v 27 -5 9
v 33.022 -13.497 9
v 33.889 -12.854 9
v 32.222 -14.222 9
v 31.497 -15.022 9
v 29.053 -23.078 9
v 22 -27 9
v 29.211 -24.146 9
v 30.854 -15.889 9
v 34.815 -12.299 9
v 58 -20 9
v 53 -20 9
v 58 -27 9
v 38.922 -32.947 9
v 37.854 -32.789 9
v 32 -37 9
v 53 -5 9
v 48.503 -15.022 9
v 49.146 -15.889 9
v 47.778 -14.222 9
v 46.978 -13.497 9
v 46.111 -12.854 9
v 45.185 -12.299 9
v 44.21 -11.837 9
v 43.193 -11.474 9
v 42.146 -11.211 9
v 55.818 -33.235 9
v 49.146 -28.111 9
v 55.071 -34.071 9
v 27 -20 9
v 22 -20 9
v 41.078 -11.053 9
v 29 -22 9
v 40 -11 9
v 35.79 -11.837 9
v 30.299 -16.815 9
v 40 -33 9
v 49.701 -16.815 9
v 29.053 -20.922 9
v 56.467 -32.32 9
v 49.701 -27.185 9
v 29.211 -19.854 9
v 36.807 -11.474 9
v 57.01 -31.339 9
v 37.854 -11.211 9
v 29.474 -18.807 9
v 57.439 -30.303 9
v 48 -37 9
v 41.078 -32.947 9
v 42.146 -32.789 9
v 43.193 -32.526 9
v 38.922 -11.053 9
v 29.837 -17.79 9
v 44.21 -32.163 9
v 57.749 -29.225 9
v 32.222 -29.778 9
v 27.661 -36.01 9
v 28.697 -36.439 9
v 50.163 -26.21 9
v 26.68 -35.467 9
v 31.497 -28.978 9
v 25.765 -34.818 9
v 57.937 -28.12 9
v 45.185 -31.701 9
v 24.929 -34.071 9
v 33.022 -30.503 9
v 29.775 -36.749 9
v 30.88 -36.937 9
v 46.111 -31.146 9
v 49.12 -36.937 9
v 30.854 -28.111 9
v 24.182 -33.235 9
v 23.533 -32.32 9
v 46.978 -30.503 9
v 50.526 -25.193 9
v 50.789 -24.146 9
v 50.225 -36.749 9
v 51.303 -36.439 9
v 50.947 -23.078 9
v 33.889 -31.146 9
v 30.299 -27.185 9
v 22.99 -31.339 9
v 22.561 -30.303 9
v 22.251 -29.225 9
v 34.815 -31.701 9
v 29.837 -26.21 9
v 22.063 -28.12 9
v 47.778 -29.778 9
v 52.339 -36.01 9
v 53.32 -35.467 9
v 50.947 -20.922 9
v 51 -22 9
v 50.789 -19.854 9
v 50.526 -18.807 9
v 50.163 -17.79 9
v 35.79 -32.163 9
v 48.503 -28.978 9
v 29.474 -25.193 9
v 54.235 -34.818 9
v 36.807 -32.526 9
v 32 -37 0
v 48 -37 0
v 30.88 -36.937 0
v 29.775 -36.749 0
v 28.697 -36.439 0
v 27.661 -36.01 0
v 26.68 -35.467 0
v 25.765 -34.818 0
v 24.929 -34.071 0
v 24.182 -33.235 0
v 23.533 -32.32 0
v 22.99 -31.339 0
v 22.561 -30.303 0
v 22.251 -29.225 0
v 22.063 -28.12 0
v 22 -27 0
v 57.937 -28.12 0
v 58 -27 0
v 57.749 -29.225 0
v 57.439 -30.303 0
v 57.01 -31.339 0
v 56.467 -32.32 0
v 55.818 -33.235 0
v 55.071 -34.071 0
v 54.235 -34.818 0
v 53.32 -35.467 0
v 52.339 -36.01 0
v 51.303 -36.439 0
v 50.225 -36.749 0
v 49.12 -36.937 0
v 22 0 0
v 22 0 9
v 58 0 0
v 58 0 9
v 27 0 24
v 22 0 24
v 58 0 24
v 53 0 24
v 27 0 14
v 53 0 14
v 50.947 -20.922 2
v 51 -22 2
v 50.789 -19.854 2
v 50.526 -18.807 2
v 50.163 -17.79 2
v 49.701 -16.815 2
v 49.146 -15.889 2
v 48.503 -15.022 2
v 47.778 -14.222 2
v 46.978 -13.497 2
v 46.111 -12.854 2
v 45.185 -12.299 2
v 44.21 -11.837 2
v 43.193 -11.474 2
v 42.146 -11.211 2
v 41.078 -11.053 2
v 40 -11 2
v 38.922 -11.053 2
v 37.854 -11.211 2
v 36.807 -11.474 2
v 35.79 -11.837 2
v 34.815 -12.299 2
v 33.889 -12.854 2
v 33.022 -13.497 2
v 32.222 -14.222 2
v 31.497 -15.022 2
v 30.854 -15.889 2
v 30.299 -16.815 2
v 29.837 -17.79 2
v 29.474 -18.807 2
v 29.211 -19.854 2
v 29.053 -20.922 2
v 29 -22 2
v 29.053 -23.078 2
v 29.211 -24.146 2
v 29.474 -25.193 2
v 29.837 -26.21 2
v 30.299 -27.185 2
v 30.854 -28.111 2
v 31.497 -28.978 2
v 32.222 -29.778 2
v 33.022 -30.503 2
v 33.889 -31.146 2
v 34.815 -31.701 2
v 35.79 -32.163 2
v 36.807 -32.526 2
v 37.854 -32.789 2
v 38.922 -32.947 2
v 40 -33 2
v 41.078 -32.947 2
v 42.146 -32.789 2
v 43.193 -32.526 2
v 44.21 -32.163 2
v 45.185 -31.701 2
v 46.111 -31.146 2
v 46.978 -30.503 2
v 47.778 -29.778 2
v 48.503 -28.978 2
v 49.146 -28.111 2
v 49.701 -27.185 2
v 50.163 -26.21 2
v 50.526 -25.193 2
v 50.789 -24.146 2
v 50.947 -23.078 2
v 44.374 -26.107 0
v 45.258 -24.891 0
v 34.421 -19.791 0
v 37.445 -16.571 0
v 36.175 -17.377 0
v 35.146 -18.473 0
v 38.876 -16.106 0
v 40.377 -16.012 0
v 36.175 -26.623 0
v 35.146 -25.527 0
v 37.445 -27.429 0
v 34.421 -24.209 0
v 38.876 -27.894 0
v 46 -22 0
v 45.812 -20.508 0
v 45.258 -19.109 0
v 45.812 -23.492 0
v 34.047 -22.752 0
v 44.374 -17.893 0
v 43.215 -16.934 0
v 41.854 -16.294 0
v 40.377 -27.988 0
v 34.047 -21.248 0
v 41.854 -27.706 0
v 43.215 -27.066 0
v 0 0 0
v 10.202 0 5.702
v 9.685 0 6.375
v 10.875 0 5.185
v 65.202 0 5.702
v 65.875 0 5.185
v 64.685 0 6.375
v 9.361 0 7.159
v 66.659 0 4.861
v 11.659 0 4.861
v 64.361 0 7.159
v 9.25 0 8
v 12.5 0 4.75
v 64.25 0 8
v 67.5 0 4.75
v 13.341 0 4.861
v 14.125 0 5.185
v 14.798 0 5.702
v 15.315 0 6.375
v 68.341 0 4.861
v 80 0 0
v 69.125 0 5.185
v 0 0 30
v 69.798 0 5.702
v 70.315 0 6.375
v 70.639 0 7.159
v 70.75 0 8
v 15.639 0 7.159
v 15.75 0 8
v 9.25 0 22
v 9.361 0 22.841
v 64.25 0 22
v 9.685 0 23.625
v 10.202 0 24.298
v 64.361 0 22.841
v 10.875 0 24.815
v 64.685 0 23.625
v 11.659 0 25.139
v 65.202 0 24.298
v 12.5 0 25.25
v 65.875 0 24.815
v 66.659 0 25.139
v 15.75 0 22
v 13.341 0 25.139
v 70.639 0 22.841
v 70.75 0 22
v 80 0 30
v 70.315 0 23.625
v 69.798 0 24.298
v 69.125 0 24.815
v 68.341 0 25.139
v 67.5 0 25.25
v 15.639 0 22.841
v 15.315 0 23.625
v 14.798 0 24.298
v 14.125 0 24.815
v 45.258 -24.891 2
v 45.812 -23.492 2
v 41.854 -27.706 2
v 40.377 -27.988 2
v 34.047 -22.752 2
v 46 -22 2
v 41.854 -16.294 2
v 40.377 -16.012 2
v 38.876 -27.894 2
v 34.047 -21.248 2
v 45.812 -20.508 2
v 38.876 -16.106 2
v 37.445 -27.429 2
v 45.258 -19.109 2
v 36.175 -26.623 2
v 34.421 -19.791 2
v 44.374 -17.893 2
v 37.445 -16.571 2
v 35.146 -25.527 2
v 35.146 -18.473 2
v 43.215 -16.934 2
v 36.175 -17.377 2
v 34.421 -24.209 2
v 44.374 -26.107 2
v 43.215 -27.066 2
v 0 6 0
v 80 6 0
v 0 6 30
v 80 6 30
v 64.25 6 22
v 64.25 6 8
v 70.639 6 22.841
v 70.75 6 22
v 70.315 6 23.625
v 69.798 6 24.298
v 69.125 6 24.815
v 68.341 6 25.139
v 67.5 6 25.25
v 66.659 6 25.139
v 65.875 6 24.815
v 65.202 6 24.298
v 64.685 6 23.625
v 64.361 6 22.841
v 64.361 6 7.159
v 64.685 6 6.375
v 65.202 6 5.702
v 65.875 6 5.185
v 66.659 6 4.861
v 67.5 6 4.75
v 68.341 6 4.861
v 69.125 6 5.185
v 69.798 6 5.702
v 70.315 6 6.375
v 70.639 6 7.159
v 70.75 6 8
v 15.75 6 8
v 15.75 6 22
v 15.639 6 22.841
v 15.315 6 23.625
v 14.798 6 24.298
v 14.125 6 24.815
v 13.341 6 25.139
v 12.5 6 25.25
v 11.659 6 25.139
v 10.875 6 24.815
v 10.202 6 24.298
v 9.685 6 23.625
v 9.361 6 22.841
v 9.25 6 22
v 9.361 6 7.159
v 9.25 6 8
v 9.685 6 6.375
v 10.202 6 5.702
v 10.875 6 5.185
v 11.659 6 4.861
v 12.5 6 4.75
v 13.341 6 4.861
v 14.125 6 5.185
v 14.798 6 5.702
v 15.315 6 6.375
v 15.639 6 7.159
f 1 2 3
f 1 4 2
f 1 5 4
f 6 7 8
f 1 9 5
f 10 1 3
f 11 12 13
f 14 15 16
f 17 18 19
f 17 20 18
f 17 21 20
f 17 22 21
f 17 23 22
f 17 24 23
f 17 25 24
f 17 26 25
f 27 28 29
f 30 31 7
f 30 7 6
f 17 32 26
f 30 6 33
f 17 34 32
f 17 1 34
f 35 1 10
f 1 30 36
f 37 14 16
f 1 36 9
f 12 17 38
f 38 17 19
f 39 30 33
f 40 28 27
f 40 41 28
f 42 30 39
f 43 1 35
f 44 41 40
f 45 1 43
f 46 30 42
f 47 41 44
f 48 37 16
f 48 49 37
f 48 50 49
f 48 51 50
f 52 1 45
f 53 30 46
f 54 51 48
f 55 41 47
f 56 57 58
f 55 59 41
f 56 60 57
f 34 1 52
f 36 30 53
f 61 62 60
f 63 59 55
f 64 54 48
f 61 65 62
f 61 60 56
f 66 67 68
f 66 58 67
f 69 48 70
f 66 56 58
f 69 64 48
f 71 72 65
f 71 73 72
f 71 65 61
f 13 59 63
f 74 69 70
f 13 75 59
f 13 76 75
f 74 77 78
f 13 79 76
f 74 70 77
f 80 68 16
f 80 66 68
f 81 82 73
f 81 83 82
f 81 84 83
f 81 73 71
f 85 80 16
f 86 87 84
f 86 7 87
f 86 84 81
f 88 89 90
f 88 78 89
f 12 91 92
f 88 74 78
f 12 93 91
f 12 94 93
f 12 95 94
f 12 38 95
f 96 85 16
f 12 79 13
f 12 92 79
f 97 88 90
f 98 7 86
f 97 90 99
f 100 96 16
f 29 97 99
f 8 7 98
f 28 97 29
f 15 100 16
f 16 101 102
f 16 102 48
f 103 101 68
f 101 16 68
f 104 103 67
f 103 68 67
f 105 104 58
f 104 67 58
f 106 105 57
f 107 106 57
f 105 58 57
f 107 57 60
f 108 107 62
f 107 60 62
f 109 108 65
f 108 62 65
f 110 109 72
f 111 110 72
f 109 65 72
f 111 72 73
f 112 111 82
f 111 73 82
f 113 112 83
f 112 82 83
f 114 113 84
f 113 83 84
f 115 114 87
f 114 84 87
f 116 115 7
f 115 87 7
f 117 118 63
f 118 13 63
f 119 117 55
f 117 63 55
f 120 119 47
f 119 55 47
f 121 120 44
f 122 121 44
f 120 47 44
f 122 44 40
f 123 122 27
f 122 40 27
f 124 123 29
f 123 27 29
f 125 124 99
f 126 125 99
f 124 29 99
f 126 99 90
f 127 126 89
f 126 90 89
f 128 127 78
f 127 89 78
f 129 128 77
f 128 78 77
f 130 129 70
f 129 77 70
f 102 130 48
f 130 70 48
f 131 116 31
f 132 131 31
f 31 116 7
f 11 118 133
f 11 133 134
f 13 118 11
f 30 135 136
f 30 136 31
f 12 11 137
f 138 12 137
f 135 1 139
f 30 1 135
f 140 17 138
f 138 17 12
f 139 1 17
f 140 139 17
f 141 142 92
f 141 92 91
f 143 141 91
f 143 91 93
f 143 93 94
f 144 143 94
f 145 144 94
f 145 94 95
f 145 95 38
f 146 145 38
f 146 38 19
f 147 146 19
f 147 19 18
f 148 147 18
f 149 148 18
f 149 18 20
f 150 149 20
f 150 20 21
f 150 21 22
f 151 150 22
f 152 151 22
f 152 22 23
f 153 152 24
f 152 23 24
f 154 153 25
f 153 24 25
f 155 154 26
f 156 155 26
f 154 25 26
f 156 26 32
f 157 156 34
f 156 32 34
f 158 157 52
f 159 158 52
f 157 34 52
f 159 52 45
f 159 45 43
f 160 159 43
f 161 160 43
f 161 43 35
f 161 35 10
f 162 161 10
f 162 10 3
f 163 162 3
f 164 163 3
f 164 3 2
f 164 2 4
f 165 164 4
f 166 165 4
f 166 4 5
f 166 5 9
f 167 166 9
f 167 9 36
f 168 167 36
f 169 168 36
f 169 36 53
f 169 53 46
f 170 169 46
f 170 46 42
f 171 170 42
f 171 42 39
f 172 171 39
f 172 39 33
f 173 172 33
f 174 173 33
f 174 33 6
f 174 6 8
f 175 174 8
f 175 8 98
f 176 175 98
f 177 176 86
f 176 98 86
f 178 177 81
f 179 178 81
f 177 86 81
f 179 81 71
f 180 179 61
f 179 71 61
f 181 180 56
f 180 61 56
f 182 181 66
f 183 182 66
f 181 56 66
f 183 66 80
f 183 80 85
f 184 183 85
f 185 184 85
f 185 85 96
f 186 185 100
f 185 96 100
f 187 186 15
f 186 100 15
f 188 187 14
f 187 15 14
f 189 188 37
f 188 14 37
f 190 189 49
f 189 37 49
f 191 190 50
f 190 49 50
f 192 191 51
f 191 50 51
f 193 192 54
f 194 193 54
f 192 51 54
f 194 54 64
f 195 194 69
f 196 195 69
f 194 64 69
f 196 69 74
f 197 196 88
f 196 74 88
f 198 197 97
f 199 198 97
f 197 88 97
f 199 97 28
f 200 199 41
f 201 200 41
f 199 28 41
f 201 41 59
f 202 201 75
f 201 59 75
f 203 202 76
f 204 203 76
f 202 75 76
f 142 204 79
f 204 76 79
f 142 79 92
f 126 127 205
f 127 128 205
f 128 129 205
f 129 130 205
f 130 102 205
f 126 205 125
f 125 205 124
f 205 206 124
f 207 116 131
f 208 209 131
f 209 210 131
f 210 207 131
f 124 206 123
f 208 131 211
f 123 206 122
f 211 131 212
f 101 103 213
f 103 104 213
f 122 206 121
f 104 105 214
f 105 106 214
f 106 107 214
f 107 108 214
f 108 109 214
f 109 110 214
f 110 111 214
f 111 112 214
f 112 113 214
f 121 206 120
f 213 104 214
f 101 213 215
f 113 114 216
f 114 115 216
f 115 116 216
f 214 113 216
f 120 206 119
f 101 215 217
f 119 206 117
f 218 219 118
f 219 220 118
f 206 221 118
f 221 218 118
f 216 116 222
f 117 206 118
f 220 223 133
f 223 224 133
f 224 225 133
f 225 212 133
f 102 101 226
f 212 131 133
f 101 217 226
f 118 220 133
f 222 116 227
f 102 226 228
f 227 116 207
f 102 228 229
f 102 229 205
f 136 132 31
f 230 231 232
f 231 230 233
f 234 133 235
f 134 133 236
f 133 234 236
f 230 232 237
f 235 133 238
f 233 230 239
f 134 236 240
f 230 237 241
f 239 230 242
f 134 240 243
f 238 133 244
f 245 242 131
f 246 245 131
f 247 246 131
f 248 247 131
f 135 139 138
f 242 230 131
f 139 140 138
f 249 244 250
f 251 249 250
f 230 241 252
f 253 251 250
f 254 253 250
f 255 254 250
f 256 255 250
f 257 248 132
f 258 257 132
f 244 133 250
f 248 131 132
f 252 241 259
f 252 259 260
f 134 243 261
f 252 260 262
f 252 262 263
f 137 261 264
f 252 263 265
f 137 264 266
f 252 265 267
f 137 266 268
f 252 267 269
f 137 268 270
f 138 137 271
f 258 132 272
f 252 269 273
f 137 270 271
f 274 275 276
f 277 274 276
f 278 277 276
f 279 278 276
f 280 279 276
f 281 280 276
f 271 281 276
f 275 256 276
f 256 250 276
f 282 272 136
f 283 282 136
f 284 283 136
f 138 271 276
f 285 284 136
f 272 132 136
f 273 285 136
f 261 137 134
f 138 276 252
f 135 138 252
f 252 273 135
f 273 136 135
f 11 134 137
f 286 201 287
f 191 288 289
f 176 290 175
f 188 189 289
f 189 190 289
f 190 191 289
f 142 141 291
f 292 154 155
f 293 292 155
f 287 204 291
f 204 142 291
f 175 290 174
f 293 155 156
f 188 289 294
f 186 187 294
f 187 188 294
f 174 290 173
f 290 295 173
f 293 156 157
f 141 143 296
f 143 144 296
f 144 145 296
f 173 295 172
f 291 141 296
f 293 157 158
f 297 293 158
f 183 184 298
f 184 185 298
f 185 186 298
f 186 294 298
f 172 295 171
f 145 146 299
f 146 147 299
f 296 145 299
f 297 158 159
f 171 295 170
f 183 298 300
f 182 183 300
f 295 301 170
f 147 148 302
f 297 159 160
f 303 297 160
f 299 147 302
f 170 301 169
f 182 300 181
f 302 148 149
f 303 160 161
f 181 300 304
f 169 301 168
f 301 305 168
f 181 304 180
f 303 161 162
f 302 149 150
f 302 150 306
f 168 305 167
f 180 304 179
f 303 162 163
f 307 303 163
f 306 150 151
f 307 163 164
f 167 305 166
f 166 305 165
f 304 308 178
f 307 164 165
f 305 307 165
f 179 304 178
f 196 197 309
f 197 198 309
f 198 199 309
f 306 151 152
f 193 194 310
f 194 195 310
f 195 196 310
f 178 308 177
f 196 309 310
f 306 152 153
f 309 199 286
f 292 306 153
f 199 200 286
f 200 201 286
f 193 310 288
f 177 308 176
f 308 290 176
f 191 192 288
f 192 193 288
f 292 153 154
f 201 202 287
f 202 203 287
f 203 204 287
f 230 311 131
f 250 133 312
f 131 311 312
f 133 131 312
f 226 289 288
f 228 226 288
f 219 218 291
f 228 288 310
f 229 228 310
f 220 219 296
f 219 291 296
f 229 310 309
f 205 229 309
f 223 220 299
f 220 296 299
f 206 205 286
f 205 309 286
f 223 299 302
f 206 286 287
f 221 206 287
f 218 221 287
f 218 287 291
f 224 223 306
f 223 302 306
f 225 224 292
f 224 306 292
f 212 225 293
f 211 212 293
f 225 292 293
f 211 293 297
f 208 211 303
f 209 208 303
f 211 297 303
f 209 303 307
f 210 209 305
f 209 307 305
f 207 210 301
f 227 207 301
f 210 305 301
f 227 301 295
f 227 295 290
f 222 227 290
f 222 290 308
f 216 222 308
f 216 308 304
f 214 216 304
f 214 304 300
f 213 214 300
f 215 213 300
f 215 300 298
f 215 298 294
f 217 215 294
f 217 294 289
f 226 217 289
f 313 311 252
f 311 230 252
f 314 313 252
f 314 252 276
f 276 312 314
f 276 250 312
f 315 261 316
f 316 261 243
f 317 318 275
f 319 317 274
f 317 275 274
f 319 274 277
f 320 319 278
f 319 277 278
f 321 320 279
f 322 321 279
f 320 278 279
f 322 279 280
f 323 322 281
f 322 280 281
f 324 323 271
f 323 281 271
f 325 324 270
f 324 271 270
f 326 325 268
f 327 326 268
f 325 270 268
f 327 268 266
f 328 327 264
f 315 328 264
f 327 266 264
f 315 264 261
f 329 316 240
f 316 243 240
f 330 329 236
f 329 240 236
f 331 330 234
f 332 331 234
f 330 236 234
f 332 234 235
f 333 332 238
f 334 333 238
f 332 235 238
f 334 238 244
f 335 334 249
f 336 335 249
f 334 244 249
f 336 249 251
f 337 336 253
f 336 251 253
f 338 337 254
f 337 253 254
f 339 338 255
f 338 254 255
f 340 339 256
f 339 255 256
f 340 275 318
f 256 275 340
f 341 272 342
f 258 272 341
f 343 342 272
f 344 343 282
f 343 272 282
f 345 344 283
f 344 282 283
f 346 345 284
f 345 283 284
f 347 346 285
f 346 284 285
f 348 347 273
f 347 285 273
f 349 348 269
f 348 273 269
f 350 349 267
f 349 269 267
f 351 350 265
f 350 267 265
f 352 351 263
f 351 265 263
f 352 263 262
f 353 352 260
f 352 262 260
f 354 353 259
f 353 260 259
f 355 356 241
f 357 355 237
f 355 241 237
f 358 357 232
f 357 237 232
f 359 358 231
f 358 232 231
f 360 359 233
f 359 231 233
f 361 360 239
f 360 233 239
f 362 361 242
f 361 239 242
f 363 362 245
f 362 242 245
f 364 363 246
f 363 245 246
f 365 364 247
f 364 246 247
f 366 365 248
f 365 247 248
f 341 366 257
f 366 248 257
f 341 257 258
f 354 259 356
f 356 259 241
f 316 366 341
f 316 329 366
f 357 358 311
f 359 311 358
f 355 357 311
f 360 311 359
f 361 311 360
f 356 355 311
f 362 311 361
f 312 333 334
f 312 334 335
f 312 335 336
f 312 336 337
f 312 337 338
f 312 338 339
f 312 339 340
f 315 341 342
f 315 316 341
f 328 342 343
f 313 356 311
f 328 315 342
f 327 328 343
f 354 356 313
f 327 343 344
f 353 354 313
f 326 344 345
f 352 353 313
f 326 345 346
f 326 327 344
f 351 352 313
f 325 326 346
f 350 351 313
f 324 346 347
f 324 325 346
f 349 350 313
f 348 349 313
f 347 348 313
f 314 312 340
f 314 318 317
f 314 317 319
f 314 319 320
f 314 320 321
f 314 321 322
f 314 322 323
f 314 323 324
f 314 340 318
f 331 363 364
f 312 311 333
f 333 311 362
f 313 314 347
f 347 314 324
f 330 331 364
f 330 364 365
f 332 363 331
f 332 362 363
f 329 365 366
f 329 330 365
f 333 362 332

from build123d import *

# Parameters (mm, degrees)
BOX003_W        = 5
BOX003_H        = 20
BOX003_DEPTH    = 15
POCKET004_DEPTH = 5.001
BOX002_W        = 5
BOX002_H        = 20
BOX002_DEPTH    = 15
POCKET003_DEPTH = 5.001
BOX_W           = 80
BOX_H           = 6
BOX_DEPTH       = 30
POCKET002_DEPTH = 6.001
BOX001_W        = 36
BOX001_H        = 37
BOX001_DEPTH    = 9
SKETCH_R        = 11
POCKET_DEPTH    = 7
SKETCH001_R     = 6
POCKET001_DEPTH = 2.001
CHAMFER_SIZE    = 5
FILLET_R        = 10
FILLET001_R     = 10


with BuildPart() as pocket004:
    # Box003 → Box003 (new body)
    with BuildSketch(Plane(origin=(53, -20, 9), x_dir=(1, 0, 0), z_dir=(0, 0, 1))):
        with Locations((2.5, 10)):
            Rectangle(BOX003_W, BOX003_H)
    extrude(amount=BOX003_DEPTH)

    # Sketch005 → Pocket004 (cut, through all)
    with BuildSketch(Plane(origin=(58, -20, 9), x_dir=(0, 1, 0), z_dir=(1, 0, 0))):
        Polygon((0, 0), (20, 15), (0, 15), align=None)
    extrude(amount=-POCKET004_DEPTH, mode=Mode.SUBTRACT)


with BuildPart() as pocket003:
    # Box002 → Box002 (new body)
    with BuildSketch(Plane(origin=(22, -20, 9), x_dir=(1, 0, 0), z_dir=(0, 0, 1))):
        with Locations((2.5, 10)):
            Rectangle(BOX002_W, BOX002_H)
    extrude(amount=BOX002_DEPTH)

    # Sketch004 → Pocket003 (cut, through all)
    with BuildSketch(Plane(origin=(27, -20, 9), x_dir=(0, 1, 0), z_dir=(1, 0, 0))):
        Polygon((20, 15), (0, 0), (0, 15), align=None)
    extrude(amount=-POCKET003_DEPTH, mode=Mode.SUBTRACT)


with BuildPart() as pocket002:
    # Box → Box (new body)
    with BuildSketch(Plane.XY):
        with Locations((40, 3)):
            Rectangle(BOX_W, BOX_H)
    extrude(amount=BOX_DEPTH)

    # Sketch003 → Pocket002 (cut, through all)
    with BuildSketch(Plane.XZ):
        with BuildLine():
            ThreePointArc((15.75, 22), (12.5, 25.25), (9.25, 22))
            Line((9.25, 22), (9.25, 8))
            ThreePointArc((9.25, 8), (12.5, 4.75), (15.75, 8))
            Line((15.75, 22), (15.75, 8))
        make_face()
        with BuildLine():
            ThreePointArc((70.75, 22), (67.5, 25.25), (64.25, 22))
            Line((64.25, 22), (64.25, 8))
            ThreePointArc((64.25, 8), (67.5, 4.75), (70.75, 8))
            Line((70.75, 22), (70.75, 8))
        make_face()
    extrude(amount=-POCKET002_DEPTH, mode=Mode.SUBTRACT)


with BuildPart() as fillet001:
    # Box001 → Box001 (new body)
    with BuildSketch(Plane(origin=(22, -37, 0), x_dir=(1, 0, 0), z_dir=(0, 0, 1))):
        with Locations((18, 18.5)):
            Rectangle(BOX001_W, BOX001_H)
    extrude(amount=BOX001_DEPTH)

    # Sketch → Pocket (cut)
    with BuildSketch(Plane(origin=(22, -37, 9), x_dir=(1, 0, 0), z_dir=(0, 0, 1))):
        with Locations((18, 15)):
            Circle(SKETCH_R)
    extrude(amount=-POCKET_DEPTH, mode=Mode.SUBTRACT)

    # Sketch001 → Pocket001 (cut, through all)
    with BuildSketch(Plane(origin=(22, -37, 2), x_dir=(1, 0, 0), z_dir=(0, 0, 1))):
        with Locations((18, 15)):
            Circle(SKETCH001_R)
    extrude(amount=-POCKET001_DEPTH, mode=Mode.SUBTRACT)

    # Fusion: union Pocket004, Pocket003, Pocket002
    add(pocket004.part)
    add(pocket003.part)
    add(pocket002.part)

    # Chamfer
    chamfer_edges = [fillet001.edges().sort_by_distance(p)[0] for p in [
        (40, 0, 9),
    ]]
    chamfer(chamfer_edges, length=CHAMFER_SIZE)

    # Fillet
    fillet_edges = [fillet001.edges().sort_by_distance(p)[0] for p in [
        (58, -37, 4.5),
    ]]
    fillet(fillet_edges, radius=FILLET_R)

    # Fillet001
    fillet001_edges = [fillet001.edges().sort_by_distance(p)[0] for p in [
        (22, -37, 4.5),
    ]]
    fillet(fillet001_edges, radius=FILLET001_R)


solid = fillet001.part
